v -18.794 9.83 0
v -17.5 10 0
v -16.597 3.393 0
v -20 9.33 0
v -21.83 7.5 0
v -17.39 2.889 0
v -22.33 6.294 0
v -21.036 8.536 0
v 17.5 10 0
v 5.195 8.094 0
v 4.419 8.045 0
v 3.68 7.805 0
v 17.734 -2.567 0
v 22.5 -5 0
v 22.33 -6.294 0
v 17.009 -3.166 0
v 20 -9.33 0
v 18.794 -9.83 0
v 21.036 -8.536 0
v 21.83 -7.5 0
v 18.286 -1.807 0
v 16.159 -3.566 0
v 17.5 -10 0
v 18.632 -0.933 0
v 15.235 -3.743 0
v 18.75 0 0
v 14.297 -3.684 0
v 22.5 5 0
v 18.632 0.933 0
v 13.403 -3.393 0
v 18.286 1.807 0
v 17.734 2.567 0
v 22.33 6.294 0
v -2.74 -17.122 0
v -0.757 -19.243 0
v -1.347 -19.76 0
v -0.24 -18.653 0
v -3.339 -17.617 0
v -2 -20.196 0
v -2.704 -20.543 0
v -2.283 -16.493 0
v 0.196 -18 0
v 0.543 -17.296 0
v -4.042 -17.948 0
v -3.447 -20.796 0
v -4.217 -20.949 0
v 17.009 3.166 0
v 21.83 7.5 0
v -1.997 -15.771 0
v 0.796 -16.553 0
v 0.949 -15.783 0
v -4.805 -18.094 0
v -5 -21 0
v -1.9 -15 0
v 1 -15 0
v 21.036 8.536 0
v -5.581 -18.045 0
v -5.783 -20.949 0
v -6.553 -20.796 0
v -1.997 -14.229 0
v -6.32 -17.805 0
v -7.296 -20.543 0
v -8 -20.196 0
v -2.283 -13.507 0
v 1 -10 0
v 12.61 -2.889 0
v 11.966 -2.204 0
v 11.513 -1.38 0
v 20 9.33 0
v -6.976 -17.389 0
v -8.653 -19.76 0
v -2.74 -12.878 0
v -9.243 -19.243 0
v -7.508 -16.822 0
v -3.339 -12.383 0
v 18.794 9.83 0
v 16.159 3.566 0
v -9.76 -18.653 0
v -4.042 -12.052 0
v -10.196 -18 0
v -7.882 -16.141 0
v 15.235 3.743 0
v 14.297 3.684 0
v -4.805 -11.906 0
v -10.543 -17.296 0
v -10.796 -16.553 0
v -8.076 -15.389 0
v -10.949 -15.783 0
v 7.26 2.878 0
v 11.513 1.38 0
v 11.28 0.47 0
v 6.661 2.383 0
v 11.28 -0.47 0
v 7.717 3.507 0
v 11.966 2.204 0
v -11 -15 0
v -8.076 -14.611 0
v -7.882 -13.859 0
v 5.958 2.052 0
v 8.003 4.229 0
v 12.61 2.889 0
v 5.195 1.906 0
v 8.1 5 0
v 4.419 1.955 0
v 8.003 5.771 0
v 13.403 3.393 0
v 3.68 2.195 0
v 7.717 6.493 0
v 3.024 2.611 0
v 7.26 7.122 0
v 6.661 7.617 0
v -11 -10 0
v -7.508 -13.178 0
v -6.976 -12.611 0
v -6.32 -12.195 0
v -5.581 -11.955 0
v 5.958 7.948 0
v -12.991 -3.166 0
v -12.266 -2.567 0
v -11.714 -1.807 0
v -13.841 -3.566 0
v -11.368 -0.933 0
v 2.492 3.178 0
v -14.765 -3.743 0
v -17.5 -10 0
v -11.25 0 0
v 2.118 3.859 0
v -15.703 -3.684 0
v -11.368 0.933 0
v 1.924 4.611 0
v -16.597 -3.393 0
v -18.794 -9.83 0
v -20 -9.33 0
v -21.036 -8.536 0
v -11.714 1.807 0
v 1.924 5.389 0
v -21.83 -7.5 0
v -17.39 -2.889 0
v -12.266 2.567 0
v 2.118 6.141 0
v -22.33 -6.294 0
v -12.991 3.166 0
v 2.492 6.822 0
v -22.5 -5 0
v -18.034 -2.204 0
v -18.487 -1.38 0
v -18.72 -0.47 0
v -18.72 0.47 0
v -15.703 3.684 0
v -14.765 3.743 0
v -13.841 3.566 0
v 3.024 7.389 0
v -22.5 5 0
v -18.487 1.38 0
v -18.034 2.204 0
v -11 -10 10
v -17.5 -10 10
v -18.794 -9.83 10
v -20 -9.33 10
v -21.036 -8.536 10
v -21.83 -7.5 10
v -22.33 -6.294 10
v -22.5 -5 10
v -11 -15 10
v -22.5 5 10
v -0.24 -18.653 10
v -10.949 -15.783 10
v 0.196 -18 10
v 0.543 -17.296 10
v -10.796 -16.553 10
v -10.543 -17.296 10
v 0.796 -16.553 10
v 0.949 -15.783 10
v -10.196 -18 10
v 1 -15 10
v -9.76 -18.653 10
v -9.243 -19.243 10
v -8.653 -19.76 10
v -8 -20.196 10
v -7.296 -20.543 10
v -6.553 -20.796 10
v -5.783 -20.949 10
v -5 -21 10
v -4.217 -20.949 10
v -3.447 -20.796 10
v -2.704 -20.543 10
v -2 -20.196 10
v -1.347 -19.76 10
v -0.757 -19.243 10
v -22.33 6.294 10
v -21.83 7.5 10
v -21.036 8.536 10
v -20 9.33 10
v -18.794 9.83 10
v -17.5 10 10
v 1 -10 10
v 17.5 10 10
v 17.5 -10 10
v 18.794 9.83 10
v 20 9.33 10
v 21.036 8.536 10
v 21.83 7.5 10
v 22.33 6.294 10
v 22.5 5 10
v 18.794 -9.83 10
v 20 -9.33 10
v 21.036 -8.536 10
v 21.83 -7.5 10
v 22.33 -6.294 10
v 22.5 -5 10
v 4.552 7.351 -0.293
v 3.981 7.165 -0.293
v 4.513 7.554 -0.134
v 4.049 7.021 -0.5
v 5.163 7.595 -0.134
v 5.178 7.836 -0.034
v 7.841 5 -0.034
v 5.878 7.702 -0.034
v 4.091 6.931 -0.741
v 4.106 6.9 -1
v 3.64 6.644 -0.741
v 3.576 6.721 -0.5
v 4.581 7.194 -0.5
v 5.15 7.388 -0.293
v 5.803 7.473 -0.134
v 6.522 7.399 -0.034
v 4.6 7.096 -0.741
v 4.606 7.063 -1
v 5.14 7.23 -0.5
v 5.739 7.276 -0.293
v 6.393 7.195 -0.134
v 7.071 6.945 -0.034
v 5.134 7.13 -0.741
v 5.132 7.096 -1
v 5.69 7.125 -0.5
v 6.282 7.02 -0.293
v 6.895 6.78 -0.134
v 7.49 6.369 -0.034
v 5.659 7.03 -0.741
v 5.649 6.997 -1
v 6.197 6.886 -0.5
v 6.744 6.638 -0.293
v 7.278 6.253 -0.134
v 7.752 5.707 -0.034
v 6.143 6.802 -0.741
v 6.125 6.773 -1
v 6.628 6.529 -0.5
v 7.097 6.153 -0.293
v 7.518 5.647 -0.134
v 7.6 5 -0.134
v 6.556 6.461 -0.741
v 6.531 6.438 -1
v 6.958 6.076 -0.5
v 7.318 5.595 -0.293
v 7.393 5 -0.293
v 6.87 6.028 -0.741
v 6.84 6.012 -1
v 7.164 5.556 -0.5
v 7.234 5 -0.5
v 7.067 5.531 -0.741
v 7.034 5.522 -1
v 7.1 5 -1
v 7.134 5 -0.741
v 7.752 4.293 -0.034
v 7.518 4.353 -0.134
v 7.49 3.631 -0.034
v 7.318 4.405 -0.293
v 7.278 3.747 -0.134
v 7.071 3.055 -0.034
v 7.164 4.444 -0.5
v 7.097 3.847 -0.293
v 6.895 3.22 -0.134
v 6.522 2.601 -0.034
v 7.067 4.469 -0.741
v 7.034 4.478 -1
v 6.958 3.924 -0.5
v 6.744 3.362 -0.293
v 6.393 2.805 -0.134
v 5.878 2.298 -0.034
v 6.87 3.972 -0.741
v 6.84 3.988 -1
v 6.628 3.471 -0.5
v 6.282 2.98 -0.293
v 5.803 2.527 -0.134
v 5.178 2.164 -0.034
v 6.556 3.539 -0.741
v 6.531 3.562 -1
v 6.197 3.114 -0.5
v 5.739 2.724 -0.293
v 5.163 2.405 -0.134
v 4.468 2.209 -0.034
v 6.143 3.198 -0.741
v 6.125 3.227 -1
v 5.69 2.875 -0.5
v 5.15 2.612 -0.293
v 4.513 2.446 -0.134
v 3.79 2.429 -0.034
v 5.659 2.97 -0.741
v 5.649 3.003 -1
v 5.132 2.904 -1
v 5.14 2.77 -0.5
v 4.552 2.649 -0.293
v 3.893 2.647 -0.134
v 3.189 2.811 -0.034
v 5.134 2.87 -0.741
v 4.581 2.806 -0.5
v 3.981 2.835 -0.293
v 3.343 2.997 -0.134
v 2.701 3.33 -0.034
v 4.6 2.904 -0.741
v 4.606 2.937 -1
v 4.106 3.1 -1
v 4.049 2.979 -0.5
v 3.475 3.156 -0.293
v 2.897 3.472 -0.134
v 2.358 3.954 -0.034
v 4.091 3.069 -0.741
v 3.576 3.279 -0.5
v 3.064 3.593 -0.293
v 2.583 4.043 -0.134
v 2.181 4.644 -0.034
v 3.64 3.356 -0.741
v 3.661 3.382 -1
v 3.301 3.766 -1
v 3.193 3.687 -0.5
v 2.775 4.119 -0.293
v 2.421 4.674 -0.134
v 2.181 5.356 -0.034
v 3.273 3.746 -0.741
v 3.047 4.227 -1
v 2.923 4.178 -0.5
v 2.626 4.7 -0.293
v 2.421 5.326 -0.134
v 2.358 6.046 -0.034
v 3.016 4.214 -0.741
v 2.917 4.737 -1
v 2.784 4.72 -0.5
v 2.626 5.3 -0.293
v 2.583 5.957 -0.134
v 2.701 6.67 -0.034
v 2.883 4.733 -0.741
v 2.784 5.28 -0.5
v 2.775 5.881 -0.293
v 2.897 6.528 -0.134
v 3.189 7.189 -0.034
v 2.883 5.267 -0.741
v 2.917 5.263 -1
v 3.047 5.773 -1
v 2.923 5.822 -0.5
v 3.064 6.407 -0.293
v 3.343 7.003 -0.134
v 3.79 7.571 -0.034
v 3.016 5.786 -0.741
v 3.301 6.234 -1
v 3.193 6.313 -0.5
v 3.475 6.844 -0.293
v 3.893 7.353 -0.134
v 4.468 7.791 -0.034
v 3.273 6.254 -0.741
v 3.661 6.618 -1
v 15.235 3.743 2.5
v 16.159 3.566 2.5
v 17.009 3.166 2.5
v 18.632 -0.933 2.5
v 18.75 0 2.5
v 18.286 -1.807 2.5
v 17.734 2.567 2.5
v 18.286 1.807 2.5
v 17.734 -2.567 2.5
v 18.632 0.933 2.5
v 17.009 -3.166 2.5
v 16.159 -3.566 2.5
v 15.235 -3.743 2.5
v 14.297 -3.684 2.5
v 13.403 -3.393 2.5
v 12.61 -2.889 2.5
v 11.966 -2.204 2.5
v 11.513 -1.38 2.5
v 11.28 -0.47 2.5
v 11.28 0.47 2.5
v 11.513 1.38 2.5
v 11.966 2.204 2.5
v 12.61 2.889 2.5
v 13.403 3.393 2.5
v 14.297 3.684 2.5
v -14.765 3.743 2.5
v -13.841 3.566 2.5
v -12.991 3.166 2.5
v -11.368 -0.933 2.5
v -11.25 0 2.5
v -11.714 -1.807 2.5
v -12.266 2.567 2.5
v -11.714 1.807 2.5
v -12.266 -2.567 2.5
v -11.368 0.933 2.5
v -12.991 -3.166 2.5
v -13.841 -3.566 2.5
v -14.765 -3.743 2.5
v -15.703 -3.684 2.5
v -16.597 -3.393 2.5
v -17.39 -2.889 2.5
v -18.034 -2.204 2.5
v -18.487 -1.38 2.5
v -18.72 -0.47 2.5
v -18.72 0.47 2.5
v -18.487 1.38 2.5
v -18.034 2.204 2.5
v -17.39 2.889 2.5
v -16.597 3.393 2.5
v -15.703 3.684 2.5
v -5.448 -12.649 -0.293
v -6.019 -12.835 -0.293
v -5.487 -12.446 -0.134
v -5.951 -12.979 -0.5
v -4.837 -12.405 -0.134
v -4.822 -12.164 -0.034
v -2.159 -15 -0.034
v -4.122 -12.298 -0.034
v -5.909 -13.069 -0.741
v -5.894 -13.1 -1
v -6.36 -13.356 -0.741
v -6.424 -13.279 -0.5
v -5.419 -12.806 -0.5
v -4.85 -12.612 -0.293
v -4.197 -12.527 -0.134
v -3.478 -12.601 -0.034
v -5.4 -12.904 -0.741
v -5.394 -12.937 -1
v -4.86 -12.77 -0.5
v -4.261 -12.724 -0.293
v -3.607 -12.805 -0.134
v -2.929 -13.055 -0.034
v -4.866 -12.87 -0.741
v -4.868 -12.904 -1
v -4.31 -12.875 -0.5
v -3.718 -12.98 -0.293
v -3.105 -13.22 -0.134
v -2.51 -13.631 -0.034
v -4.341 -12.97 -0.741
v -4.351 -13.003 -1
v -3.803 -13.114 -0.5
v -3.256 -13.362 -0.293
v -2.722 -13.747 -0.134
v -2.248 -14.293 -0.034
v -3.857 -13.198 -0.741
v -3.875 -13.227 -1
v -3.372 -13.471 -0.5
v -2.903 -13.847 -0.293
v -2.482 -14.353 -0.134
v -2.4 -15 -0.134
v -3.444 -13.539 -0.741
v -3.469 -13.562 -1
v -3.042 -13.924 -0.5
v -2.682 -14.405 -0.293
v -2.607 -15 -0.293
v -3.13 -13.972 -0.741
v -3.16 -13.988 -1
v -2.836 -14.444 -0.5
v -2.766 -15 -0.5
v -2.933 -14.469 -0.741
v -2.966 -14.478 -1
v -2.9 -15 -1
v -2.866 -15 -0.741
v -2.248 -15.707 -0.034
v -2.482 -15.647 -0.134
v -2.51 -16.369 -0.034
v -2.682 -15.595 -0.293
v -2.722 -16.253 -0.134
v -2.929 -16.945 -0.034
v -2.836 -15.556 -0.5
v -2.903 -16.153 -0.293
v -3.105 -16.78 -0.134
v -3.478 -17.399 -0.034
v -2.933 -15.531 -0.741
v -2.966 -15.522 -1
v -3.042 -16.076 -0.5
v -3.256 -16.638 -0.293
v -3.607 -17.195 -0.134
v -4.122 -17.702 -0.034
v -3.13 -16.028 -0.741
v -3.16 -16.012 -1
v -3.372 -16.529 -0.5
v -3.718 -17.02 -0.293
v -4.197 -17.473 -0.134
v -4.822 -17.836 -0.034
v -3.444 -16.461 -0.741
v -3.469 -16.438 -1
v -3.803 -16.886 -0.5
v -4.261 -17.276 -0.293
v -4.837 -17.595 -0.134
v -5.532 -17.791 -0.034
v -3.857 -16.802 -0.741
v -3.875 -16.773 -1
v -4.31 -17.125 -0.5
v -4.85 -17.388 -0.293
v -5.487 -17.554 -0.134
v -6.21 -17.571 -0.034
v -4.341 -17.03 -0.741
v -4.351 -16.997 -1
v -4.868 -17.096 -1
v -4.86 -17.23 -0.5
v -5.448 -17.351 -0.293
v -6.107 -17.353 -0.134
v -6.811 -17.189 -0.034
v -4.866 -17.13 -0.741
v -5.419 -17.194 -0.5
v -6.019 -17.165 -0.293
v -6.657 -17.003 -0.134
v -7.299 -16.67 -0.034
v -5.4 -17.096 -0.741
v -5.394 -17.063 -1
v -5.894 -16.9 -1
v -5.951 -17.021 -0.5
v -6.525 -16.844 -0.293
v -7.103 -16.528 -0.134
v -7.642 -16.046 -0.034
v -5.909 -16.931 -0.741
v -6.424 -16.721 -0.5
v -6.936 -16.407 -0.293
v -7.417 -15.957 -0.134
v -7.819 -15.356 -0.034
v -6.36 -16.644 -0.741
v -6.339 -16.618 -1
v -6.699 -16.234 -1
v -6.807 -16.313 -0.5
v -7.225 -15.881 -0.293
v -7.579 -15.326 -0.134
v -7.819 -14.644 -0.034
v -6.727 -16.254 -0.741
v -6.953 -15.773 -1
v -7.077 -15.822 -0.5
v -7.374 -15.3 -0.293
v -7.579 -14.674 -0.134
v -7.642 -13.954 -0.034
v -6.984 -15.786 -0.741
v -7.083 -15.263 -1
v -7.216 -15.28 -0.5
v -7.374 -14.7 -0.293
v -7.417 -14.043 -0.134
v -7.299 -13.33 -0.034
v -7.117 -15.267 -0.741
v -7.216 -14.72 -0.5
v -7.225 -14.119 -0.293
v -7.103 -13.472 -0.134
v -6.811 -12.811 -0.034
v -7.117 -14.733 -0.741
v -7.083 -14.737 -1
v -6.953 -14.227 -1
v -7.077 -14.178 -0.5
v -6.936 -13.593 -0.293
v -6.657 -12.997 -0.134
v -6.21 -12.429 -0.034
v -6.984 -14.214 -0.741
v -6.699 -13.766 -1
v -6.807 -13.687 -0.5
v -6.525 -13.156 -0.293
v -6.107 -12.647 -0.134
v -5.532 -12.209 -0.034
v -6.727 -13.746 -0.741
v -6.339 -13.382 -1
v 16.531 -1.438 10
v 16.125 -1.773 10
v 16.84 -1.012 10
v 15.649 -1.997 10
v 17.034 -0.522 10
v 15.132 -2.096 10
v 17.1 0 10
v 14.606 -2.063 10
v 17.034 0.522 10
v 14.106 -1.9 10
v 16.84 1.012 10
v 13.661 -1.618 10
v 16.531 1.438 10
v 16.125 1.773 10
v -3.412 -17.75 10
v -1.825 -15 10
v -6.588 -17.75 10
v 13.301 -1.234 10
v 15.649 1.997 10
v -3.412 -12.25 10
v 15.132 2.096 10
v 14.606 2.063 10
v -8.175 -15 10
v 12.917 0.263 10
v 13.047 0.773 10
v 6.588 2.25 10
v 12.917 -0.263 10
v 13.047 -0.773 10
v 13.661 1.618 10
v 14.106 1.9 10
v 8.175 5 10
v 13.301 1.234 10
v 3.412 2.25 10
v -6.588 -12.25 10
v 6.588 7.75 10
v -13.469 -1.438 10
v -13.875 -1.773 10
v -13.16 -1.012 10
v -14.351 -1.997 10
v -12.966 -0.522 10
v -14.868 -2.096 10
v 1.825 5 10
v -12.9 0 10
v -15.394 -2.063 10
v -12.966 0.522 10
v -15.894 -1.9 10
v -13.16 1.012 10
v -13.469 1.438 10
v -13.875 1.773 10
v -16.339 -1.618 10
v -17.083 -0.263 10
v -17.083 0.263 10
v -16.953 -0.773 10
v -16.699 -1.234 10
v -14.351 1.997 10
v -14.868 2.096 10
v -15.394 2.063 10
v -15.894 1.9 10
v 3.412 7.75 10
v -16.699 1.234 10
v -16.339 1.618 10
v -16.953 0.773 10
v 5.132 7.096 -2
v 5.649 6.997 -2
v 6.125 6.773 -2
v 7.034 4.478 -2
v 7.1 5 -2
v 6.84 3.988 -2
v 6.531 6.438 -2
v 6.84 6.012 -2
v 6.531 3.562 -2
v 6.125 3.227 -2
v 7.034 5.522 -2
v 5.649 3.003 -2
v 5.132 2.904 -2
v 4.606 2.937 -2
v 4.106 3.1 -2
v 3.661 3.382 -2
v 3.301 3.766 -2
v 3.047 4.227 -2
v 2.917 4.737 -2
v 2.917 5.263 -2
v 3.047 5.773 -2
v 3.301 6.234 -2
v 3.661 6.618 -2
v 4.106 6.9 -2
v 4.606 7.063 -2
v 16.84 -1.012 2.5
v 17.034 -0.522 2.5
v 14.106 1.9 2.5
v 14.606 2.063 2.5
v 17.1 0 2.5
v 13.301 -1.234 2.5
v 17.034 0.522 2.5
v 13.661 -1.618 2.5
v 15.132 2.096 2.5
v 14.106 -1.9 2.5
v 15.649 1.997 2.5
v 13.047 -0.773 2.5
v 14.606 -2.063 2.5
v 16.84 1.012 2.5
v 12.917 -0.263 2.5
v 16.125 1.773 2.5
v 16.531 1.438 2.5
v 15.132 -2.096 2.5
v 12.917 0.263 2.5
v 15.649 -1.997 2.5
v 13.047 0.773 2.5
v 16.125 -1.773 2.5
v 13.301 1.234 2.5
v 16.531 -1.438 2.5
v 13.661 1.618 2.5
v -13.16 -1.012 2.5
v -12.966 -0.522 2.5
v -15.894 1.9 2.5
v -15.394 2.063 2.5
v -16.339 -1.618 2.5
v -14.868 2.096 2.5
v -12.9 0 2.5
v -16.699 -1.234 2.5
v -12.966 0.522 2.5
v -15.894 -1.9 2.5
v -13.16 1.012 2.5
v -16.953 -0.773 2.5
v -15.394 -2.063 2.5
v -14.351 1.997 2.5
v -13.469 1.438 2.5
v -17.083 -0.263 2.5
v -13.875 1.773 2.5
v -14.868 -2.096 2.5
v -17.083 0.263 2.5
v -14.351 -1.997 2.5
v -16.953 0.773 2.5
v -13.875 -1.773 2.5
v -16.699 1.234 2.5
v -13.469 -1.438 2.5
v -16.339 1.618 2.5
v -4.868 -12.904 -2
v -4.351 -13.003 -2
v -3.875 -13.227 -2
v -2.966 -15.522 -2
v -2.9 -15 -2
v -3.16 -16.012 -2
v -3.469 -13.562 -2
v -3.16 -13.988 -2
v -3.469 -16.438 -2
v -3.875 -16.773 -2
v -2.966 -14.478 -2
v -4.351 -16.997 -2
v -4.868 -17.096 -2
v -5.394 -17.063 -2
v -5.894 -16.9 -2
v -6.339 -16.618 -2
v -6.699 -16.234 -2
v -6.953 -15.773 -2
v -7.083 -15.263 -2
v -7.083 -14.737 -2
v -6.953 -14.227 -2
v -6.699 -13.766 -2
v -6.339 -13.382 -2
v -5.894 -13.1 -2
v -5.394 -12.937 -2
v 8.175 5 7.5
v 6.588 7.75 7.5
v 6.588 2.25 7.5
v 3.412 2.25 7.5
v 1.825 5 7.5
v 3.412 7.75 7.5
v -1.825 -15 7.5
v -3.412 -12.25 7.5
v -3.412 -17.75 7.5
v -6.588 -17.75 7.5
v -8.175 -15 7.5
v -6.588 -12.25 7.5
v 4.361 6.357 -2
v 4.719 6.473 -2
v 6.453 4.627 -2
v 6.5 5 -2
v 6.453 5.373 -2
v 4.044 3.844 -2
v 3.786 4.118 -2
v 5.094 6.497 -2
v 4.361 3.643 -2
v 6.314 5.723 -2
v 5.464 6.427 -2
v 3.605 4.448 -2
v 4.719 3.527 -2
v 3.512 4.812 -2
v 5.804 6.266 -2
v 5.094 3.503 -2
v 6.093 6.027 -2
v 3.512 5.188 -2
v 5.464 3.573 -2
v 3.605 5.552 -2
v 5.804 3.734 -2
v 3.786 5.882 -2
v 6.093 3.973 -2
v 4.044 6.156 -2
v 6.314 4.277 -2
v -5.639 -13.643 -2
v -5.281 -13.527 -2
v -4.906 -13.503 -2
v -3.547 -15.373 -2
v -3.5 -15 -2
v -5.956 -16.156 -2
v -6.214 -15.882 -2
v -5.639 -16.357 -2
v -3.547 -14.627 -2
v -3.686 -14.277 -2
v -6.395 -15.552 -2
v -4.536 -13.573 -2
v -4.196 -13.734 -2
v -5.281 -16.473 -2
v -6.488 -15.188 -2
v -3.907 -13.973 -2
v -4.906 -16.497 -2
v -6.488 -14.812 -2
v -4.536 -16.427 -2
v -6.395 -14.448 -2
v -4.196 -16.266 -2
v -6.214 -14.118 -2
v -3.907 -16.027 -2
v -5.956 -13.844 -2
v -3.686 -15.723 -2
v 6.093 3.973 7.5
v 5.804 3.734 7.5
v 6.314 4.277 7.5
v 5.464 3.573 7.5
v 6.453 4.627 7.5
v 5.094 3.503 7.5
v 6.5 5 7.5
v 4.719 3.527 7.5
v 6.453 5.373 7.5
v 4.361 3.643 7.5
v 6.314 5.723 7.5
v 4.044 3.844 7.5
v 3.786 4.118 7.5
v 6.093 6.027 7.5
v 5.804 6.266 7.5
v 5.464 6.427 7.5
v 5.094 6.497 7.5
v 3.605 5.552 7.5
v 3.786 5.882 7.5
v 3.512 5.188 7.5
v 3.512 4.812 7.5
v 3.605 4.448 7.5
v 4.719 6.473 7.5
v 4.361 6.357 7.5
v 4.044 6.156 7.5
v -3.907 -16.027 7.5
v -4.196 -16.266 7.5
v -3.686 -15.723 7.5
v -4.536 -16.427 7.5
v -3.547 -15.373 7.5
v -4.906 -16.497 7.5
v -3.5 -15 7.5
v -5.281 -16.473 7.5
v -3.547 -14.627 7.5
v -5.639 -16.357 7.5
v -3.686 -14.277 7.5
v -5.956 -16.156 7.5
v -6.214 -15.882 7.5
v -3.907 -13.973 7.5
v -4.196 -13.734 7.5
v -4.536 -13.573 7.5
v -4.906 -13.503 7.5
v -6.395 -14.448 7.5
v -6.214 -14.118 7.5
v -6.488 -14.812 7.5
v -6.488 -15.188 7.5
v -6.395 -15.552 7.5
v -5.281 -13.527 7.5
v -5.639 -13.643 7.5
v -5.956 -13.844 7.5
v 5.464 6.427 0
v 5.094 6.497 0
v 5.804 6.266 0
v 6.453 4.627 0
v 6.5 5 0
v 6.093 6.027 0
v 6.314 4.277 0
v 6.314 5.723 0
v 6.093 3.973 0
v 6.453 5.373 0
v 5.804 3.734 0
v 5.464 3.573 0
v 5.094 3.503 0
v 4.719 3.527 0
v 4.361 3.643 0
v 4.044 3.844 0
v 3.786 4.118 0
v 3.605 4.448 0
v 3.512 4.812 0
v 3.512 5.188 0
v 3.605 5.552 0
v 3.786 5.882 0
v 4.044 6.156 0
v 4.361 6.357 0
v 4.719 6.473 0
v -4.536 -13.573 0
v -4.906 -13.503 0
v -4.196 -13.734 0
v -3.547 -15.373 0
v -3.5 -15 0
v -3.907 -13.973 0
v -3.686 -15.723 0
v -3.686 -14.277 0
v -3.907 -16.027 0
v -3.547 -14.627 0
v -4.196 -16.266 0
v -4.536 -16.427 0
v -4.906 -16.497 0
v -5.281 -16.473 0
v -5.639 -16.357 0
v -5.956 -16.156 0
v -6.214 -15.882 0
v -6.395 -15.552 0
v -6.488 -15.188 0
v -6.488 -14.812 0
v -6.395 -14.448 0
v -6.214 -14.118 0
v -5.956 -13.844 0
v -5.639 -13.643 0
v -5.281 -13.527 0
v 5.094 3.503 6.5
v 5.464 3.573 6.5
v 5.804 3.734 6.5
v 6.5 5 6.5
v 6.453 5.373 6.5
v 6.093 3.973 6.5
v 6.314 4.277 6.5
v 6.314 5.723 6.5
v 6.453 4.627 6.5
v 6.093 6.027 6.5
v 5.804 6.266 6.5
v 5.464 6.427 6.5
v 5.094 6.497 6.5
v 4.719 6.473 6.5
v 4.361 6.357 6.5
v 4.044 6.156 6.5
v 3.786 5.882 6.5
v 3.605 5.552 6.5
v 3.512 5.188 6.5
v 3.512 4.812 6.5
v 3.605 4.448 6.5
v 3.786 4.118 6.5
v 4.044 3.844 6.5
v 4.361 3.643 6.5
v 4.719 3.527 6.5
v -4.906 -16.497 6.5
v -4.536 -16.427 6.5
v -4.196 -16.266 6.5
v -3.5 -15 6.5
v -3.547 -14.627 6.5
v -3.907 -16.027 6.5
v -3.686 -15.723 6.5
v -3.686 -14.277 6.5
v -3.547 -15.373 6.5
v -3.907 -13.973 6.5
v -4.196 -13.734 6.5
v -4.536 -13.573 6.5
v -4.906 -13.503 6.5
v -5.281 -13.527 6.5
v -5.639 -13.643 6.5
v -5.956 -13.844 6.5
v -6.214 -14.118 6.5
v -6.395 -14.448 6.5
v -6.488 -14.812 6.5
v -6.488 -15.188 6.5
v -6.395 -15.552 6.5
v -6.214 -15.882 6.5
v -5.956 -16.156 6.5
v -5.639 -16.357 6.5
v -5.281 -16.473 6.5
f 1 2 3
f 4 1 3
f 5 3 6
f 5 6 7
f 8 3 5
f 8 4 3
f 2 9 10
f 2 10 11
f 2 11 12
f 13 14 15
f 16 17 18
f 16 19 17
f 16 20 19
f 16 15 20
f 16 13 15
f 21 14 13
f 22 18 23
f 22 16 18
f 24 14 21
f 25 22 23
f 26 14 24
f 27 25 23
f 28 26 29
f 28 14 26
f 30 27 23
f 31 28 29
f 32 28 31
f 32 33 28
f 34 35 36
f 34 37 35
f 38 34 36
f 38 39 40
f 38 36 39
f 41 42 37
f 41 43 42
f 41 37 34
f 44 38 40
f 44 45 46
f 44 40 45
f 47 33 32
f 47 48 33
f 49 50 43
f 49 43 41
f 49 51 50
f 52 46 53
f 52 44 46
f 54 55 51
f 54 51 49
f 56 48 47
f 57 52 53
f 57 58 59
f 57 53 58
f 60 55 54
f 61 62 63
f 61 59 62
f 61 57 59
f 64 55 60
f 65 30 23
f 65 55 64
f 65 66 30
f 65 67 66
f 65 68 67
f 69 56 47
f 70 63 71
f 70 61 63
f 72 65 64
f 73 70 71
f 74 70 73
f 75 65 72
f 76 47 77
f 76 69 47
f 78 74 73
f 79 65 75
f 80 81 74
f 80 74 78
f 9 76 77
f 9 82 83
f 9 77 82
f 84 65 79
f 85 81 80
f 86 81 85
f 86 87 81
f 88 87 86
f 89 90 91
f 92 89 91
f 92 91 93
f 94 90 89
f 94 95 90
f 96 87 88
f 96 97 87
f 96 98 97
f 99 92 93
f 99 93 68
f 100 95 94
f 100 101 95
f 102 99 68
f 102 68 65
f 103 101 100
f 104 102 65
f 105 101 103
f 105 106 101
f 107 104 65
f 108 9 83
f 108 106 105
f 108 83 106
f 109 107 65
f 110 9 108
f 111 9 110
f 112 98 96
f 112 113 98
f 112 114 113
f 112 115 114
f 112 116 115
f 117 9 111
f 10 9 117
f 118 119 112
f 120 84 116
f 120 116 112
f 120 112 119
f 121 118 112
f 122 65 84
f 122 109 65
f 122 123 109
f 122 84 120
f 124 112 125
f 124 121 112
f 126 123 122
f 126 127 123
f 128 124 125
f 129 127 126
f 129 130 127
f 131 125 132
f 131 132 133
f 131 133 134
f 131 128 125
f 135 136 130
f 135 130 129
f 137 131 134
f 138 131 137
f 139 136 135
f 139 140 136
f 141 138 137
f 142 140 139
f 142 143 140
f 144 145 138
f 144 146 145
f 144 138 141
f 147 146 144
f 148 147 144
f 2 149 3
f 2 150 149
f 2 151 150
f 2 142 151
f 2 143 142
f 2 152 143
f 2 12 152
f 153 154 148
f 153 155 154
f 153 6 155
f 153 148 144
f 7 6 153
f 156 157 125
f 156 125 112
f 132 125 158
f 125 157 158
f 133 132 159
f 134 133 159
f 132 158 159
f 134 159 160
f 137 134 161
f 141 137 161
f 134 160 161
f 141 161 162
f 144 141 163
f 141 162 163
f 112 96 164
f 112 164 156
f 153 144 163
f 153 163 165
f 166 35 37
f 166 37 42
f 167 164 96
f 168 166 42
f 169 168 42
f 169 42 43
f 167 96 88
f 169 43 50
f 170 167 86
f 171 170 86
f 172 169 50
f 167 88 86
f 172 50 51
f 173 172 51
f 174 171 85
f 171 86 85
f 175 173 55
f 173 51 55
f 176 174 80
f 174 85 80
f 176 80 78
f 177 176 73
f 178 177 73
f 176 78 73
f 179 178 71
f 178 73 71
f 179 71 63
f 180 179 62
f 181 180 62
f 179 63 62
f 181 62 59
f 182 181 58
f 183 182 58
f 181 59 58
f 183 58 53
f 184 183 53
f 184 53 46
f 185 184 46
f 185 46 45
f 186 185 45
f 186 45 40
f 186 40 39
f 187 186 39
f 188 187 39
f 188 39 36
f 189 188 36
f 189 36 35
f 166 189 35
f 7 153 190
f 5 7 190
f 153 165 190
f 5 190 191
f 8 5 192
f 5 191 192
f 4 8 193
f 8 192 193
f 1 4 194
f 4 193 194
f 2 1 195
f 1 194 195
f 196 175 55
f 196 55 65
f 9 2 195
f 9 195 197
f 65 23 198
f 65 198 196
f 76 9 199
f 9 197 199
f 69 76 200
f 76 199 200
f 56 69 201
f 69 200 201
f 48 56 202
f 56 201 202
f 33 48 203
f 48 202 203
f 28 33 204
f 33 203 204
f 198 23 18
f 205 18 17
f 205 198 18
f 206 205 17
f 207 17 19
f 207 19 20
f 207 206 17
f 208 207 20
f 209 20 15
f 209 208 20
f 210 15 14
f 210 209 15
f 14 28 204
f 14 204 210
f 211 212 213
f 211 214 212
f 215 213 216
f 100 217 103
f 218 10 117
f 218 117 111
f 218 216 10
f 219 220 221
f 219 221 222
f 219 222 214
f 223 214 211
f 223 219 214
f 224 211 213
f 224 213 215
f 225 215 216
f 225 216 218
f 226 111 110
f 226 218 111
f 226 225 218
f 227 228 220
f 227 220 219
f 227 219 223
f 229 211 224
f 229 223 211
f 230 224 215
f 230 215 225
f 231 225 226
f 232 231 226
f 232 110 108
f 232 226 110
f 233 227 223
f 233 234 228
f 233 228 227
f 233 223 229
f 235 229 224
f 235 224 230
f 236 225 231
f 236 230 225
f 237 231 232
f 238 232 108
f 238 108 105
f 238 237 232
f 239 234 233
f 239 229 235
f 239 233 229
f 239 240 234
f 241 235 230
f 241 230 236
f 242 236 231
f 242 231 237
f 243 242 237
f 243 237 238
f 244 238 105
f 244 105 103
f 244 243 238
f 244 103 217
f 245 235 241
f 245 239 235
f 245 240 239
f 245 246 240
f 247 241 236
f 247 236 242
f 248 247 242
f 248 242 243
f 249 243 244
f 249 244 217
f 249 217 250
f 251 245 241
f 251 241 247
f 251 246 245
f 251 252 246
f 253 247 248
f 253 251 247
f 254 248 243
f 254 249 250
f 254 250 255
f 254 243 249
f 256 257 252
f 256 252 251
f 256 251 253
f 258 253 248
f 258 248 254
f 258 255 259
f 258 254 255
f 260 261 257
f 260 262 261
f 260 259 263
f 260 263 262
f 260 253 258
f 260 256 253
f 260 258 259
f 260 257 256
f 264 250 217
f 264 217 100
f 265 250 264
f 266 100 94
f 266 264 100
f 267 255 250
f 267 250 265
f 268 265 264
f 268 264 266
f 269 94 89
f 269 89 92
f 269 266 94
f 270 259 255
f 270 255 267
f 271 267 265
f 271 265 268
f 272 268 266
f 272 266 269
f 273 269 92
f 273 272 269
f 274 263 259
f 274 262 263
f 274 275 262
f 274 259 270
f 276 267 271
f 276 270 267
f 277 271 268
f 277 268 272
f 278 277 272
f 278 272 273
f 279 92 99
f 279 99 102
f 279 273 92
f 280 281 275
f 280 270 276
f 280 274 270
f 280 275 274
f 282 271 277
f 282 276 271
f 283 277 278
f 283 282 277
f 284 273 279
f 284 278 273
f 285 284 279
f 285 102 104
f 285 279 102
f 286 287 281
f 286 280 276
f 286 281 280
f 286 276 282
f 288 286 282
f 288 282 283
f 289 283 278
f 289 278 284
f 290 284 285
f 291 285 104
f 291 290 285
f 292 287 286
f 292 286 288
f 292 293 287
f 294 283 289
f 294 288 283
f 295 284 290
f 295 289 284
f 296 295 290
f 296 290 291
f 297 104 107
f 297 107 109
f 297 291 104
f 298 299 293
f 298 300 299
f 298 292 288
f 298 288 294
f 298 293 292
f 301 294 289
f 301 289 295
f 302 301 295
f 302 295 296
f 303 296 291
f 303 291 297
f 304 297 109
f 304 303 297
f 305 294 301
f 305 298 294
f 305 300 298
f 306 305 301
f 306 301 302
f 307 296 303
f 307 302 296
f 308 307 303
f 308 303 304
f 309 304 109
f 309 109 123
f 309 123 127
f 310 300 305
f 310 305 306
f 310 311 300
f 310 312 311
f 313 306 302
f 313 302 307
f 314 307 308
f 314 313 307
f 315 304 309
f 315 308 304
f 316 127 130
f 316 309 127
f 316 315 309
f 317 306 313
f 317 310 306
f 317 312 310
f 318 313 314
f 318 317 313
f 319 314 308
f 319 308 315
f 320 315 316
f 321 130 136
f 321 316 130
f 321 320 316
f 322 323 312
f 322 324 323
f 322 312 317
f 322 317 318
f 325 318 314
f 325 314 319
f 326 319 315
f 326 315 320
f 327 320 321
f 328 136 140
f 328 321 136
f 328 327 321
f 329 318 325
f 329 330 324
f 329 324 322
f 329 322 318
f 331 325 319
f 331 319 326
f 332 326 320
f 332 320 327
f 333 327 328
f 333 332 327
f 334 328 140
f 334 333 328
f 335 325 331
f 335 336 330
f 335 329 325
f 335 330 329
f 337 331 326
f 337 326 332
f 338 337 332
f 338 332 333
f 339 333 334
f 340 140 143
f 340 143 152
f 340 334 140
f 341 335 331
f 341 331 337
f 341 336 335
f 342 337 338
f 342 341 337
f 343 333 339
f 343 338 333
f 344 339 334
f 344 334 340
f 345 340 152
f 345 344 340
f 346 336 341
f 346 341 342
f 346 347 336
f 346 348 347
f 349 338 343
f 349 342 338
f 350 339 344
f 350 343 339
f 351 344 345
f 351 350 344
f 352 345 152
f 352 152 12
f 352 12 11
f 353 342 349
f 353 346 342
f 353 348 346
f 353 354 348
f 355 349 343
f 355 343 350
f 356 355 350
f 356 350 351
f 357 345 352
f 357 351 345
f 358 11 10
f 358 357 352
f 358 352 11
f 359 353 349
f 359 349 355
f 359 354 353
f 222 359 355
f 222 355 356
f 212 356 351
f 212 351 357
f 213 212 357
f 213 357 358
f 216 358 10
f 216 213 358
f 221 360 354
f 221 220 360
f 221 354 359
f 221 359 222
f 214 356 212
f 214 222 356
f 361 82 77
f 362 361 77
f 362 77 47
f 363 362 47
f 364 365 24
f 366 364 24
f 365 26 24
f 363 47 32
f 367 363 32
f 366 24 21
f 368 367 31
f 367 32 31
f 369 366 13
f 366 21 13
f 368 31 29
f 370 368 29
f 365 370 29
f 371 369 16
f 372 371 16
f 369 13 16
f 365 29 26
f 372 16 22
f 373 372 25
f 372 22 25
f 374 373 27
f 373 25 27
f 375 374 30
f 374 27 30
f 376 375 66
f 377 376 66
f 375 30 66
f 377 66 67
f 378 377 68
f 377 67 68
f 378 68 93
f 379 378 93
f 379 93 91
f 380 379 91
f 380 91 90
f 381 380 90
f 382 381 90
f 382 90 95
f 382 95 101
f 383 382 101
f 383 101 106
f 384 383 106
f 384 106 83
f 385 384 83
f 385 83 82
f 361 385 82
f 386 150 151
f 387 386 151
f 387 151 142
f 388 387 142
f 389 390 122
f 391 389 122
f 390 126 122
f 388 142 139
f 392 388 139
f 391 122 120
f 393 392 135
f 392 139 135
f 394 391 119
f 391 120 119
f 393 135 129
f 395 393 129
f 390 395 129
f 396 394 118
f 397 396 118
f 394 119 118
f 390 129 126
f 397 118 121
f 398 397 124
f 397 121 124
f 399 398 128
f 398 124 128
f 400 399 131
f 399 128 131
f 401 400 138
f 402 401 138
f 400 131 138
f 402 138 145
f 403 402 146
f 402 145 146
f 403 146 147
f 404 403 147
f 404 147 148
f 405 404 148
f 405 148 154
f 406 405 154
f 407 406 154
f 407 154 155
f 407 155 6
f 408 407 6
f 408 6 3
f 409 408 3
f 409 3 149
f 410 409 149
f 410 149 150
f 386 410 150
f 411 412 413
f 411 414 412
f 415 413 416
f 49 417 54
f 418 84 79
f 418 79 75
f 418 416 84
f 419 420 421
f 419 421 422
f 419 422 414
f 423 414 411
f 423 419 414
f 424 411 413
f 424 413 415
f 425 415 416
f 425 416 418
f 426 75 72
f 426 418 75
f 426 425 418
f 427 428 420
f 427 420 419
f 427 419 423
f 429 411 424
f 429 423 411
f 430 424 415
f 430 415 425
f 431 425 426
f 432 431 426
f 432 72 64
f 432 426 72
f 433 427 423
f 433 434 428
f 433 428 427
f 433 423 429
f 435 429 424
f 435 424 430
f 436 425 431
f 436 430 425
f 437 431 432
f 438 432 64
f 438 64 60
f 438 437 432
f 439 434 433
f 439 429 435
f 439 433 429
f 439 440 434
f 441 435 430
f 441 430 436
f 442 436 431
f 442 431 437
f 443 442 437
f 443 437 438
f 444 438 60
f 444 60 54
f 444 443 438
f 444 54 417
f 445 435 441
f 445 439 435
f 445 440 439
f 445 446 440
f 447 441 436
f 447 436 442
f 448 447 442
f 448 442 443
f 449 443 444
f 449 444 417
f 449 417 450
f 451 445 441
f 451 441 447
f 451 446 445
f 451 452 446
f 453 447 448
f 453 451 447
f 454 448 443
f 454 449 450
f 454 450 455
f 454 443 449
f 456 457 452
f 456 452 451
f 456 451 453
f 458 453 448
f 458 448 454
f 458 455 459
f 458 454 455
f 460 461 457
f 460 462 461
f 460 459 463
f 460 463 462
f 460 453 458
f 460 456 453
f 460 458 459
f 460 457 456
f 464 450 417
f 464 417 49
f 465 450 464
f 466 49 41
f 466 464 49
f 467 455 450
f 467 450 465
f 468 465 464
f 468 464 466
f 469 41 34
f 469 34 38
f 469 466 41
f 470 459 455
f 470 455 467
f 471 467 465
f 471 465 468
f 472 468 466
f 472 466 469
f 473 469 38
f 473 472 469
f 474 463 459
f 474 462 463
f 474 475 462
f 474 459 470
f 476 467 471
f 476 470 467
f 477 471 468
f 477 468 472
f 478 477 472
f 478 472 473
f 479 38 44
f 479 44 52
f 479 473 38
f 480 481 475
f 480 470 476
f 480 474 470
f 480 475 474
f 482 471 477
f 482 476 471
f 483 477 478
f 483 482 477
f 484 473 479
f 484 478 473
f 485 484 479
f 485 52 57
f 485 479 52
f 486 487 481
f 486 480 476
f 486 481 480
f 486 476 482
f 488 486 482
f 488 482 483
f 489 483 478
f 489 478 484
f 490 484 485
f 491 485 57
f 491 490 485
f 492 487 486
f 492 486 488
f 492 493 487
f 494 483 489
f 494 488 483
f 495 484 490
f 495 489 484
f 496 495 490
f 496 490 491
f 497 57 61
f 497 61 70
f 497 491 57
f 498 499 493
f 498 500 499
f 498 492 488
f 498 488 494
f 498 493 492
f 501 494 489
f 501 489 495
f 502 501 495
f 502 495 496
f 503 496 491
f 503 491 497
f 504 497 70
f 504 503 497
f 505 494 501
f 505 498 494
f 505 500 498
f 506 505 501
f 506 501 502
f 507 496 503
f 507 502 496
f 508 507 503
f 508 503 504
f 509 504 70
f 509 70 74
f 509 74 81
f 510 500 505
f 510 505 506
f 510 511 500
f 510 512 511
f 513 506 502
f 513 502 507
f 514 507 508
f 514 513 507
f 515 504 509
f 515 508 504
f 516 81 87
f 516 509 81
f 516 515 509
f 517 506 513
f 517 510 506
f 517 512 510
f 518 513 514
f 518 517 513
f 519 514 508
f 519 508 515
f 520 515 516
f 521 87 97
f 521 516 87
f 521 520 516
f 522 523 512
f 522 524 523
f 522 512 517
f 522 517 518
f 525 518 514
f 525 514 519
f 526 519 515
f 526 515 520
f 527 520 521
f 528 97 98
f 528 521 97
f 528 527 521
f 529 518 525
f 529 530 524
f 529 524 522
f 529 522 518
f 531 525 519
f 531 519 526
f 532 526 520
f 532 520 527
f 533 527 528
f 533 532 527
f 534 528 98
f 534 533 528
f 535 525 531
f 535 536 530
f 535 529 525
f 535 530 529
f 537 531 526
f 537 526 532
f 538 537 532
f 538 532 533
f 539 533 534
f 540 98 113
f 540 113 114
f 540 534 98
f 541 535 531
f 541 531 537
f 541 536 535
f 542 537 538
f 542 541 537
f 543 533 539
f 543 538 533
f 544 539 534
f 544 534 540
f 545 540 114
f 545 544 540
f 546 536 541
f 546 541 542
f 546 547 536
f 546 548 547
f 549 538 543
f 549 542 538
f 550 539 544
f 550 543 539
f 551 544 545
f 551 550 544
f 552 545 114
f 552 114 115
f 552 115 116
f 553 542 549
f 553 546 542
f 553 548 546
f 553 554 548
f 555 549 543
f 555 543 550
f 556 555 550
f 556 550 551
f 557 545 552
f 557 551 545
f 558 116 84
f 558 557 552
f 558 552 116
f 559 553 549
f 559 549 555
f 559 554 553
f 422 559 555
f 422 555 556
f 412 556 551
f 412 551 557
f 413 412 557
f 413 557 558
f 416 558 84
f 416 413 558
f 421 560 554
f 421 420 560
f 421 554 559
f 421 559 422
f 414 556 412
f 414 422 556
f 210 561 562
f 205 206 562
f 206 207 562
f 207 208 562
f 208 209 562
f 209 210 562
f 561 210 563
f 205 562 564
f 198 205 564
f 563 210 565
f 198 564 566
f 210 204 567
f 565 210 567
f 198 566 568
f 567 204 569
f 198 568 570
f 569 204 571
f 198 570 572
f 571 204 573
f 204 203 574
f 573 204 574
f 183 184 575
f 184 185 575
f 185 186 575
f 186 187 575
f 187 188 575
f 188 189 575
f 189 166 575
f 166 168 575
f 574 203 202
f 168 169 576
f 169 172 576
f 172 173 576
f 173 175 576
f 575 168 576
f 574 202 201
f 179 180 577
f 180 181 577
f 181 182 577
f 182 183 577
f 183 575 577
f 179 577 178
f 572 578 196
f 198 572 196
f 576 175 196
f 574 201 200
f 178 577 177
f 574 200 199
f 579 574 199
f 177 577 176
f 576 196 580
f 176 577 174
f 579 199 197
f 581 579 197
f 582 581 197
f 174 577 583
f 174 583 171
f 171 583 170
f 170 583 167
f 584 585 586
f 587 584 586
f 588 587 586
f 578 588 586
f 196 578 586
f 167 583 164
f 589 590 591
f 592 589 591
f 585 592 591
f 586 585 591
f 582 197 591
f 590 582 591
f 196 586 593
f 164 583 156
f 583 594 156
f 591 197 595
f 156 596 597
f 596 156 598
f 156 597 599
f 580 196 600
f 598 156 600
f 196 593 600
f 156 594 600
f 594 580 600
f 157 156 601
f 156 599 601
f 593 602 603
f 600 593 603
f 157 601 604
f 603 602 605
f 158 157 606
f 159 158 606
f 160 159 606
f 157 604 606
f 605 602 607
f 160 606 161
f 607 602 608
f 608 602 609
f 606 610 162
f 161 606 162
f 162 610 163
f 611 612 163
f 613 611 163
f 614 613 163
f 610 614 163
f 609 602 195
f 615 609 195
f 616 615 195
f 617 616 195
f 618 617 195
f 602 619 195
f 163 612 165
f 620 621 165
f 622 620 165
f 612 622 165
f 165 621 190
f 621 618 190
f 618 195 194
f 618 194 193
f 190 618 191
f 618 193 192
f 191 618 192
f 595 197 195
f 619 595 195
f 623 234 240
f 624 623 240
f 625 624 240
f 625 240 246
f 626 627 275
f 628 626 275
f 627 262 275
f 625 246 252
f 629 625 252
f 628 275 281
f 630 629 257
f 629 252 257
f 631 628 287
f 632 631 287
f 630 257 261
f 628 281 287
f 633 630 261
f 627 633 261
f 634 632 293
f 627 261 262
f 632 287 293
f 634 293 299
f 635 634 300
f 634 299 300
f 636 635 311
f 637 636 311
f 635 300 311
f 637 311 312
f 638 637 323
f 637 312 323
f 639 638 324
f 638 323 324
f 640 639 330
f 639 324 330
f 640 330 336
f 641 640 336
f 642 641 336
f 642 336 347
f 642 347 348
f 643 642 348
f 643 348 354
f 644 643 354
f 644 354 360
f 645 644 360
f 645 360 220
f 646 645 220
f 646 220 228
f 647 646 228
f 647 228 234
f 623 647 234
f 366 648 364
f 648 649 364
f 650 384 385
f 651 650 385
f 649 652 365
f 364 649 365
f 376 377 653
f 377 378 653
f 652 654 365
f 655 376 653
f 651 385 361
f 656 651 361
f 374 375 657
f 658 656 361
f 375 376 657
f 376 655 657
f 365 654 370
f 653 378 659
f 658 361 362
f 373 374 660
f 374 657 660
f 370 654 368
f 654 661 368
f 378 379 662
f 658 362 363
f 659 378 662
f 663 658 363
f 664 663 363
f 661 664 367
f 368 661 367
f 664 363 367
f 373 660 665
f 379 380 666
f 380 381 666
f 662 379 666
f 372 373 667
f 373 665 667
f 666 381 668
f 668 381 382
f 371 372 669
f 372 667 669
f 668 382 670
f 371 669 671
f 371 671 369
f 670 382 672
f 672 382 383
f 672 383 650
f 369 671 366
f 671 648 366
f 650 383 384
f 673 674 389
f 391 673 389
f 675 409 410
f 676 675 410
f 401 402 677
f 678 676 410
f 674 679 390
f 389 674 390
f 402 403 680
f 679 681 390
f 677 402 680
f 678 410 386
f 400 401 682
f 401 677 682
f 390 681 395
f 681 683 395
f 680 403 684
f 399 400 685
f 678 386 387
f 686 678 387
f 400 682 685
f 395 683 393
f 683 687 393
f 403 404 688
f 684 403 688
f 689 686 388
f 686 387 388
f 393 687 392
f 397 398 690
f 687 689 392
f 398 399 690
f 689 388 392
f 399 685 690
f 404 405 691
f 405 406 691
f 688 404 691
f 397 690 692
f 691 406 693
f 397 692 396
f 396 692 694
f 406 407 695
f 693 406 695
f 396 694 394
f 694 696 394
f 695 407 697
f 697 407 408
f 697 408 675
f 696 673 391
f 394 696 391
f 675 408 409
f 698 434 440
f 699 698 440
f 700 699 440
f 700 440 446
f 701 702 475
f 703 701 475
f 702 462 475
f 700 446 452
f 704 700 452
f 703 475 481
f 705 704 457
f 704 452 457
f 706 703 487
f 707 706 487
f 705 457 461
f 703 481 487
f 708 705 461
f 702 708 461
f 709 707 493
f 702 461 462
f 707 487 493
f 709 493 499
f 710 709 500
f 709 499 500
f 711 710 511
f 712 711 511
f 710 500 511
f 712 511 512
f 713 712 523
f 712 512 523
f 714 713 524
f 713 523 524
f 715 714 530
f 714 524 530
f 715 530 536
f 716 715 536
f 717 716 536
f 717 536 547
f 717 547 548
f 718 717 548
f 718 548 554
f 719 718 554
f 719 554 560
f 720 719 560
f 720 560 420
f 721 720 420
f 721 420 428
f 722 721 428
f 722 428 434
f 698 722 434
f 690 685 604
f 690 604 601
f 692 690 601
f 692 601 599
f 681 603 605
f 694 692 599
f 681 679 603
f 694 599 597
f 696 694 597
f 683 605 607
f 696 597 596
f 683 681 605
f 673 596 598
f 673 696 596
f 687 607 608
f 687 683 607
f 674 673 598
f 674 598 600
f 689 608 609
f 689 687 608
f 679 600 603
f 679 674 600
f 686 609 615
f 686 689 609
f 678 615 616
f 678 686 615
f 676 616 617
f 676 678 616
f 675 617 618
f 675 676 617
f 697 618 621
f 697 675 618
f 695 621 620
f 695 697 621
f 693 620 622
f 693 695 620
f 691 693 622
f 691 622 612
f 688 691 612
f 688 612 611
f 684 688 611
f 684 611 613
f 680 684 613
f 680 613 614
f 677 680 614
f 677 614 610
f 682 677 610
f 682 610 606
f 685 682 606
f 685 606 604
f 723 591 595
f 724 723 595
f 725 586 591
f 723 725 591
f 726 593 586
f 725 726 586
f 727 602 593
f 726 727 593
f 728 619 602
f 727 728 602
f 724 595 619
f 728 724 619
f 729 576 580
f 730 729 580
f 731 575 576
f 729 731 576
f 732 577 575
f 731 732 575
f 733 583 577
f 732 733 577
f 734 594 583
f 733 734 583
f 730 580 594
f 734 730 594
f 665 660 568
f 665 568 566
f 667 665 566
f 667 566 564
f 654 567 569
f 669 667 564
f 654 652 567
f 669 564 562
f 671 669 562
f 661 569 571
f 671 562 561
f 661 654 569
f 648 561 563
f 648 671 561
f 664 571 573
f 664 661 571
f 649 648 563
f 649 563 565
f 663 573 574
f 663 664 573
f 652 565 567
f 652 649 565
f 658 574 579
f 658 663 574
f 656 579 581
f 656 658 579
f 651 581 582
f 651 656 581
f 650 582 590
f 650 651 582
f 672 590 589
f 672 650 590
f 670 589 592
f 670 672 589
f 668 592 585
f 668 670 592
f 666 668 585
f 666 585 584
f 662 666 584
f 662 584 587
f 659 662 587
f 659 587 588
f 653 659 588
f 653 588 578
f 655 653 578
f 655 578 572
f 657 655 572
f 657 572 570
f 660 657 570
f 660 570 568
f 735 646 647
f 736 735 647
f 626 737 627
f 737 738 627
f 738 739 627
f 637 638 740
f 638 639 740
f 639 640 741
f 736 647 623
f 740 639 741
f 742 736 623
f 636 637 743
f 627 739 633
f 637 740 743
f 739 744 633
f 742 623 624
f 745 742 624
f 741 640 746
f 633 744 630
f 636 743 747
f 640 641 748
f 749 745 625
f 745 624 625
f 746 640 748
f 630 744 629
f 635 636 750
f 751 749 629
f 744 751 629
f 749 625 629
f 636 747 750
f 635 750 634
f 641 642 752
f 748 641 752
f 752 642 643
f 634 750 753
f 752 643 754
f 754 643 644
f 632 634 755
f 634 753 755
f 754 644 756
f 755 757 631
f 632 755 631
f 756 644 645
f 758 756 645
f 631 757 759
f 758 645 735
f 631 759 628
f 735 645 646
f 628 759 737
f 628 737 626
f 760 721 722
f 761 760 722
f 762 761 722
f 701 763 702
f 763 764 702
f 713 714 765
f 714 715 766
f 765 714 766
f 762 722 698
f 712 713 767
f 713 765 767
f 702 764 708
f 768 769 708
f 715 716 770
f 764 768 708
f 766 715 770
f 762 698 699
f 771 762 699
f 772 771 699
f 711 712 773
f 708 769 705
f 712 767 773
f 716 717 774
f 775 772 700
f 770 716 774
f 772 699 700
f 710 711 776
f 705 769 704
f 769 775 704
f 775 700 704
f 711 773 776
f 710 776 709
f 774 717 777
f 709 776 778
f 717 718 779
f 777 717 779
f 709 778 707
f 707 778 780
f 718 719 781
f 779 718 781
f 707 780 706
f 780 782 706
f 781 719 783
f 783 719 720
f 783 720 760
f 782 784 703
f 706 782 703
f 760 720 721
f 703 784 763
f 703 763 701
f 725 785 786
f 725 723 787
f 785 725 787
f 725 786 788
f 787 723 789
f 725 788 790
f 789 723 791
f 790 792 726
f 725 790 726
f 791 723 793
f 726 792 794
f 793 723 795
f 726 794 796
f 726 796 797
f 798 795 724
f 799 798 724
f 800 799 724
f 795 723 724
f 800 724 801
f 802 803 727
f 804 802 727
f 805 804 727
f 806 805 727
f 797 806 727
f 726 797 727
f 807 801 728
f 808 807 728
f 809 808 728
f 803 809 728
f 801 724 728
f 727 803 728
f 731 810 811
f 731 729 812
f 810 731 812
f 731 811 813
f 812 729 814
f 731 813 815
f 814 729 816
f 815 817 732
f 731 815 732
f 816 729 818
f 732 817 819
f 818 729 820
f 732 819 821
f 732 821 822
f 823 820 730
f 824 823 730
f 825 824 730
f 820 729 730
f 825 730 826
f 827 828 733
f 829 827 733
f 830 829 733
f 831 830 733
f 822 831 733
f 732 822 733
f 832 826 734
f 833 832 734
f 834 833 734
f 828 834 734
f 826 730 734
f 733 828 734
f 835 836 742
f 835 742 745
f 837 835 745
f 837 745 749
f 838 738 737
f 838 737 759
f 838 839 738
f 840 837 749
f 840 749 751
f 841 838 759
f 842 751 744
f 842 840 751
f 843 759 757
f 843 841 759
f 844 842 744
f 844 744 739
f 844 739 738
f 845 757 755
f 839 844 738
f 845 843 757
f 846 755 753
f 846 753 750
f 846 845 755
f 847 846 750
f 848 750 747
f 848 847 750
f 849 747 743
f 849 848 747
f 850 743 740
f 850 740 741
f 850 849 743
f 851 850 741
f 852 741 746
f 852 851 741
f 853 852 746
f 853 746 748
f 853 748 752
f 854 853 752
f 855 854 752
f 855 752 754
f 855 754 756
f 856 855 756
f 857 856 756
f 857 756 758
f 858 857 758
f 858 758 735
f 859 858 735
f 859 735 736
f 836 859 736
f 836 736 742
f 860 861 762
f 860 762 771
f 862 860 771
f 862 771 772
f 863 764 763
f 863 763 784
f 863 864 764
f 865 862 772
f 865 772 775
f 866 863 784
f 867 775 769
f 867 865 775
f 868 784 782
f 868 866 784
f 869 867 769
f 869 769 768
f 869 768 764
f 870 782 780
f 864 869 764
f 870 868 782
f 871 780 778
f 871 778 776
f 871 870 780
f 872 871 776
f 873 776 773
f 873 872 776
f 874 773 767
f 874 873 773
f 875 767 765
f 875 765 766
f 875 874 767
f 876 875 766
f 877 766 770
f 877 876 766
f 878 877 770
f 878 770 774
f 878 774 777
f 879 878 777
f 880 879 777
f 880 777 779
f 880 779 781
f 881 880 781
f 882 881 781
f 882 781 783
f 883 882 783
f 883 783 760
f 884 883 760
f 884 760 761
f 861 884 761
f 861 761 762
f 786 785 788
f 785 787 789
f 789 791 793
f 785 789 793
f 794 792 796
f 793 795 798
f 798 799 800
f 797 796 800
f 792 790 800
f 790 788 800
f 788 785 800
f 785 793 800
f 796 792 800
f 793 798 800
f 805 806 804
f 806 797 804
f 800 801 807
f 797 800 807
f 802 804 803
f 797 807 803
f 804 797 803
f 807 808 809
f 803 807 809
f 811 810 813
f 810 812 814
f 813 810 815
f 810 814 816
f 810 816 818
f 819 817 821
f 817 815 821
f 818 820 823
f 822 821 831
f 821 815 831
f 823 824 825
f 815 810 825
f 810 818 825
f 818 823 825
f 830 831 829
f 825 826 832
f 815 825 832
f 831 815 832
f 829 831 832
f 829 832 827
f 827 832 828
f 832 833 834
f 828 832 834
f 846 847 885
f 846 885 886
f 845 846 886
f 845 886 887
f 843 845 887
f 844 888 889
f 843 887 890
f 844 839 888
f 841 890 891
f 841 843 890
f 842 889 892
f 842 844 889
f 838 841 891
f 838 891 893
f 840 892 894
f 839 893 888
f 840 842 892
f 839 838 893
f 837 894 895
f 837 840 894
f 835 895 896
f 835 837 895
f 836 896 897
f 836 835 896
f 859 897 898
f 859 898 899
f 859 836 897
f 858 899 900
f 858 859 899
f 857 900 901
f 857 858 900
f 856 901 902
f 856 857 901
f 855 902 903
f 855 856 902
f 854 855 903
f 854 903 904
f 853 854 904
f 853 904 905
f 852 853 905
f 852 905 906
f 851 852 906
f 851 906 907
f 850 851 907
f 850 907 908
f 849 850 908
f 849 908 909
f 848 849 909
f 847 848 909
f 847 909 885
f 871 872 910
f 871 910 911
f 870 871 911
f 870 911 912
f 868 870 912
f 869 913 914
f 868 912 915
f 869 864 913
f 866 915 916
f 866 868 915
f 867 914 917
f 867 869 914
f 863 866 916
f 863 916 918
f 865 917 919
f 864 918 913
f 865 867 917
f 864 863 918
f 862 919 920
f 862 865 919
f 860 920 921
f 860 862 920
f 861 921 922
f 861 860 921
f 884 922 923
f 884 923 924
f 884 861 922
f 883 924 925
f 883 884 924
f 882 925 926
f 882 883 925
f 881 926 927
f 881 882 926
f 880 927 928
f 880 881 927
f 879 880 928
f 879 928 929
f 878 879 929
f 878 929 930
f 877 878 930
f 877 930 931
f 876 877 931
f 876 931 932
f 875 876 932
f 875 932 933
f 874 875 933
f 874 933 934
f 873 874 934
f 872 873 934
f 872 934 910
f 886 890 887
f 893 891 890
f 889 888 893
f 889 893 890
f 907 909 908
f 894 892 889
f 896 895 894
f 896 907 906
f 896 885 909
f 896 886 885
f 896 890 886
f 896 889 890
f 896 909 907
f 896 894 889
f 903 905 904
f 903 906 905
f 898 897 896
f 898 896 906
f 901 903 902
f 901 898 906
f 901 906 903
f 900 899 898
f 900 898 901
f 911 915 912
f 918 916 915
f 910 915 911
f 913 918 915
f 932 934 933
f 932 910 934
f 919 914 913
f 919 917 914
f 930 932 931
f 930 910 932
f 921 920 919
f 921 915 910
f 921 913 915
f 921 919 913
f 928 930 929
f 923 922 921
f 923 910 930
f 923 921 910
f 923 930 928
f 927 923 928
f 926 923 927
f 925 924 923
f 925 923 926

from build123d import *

# Parameters (mm, degrees)
SKETCH_R        = 2.1
SKETCH_R_2      = 1.5
PAD_DEPTH       = 10
POCKET_DEPTH    = 2.5
SKETCH002_R     = 2.1
SKETCH002_R_2   = 1.5
PAD001_DEPTH    = 2
SKETCH003_R     = 3.75
SKETCH003_R_2   = 2.1
POCKET001_DEPTH = 2.5
FILLET_R        = 1
FILLET001_R     = 5
SKETCH004_R     = 1.5
PAD002_DEPTH    = 1


with BuildPart() as part:
    # Sketch → Pad (new body)
    with BuildSketch(Plane.XY):
        with BuildLine():
            Line((-22.5, 10), (22.5, 10))
            Line((22.5, 10), (22.5, -10))
            Line((22.5, -10), (1, -10))
            Line((1, -15), (1, -10))
            ThreePointArc((-11, -15), (-5, -21), (1, -15))
            Line((-11, -15), (-11, -10))
            Line((-22.5, -10), (-11, -10))
            Line((-22.5, -10), (-22.5, 10))
        make_face()
        with Locations((-15, 0)):
            Circle(SKETCH_R, mode=Mode.SUBTRACT)
        with Locations((15, 0)):
            Circle(SKETCH_R, mode=Mode.SUBTRACT)
        with Locations((5, 5)):
            Circle(SKETCH_R_2, mode=Mode.SUBTRACT)
        with Locations((-5, -15)):
            Circle(SKETCH_R_2, mode=Mode.SUBTRACT)
    extrude(amount=PAD_DEPTH)

    # Sketch001 → Pocket (cut)
    with BuildSketch(Plane.XY.offset(10)):
        Polygon((6.587713, 2.25), (8.175426, 5), (6.587713, 7.75), (3.412287, 7.75), (1.824574, 5), (3.412287, 2.25), align=None)
        Polygon((-3.412287, -17.75), (-1.824574, -15), (-3.412287, -12.25), (-6.587713, -12.25), (-8.175426, -15), (-6.587713, -17.75), align=None)
    extrude(amount=-POCKET_DEPTH, mode=Mode.SUBTRACT)

    # Sketch002 → Pad001 (new body)
    with BuildSketch(Plane(origin=(0, 0, 0), x_dir=(1, 0, 0), z_dir=(0, 0, -1))):
        with Locations((5, -5)):
            Circle(SKETCH002_R)
        with Locations((5, -5)):
            Circle(SKETCH002_R_2, mode=Mode.SUBTRACT)
        with Locations((-5, 15)):
            Circle(SKETCH002_R)
        with Locations((-5, 15)):
            Circle(SKETCH002_R_2, mode=Mode.SUBTRACT)
    extrude(amount=PAD001_DEPTH)

    # Sketch003 → Pocket001 (cut)
    with BuildSketch(Plane(origin=(0, 0, 0), x_dir=(1, 0, 0), z_dir=(0, 0, -1))):
        with Locations((15, 0)):
            Circle(SKETCH003_R)
        with Locations((15, 0)):
            Circle(SKETCH003_R_2, mode=Mode.SUBTRACT)
        with Locations((-15, 0)):
            Circle(SKETCH003_R)
        with Locations((-15, 0)):
            Circle(SKETCH003_R_2, mode=Mode.SUBTRACT)
    extrude(amount=-POCKET001_DEPTH, mode=Mode.SUBTRACT)

    # Fillet
    fillet_edges = [part.edges().sort_by_distance(p)[0] for p in [
        (2.9, 5, 0),
        (-7.1, -15, 0),
    ]]
    fillet(fillet_edges, radius=FILLET_R)

    # Fillet001
    fillet001_edges = [part.edges().sort_by_distance(p)[0] for p in [
        (22.5, 10, 5),
        (22.5, -10, 5),
        (-22.5, 10, 5),
        (-22.5, -10, 5),
    ]]
    fillet(fillet001_edges, radius=FILLET001_R)

    # Sketch004 → Pad002 (new body)
    with BuildSketch(Plane.XY.offset(7.5)):
        with Locations((-5, -15)):
            Circle(SKETCH004_R)
        with Locations((5, 5)):
            Circle(SKETCH004_R)
    extrude(amount=-PAD002_DEPTH)


solid = part.part
